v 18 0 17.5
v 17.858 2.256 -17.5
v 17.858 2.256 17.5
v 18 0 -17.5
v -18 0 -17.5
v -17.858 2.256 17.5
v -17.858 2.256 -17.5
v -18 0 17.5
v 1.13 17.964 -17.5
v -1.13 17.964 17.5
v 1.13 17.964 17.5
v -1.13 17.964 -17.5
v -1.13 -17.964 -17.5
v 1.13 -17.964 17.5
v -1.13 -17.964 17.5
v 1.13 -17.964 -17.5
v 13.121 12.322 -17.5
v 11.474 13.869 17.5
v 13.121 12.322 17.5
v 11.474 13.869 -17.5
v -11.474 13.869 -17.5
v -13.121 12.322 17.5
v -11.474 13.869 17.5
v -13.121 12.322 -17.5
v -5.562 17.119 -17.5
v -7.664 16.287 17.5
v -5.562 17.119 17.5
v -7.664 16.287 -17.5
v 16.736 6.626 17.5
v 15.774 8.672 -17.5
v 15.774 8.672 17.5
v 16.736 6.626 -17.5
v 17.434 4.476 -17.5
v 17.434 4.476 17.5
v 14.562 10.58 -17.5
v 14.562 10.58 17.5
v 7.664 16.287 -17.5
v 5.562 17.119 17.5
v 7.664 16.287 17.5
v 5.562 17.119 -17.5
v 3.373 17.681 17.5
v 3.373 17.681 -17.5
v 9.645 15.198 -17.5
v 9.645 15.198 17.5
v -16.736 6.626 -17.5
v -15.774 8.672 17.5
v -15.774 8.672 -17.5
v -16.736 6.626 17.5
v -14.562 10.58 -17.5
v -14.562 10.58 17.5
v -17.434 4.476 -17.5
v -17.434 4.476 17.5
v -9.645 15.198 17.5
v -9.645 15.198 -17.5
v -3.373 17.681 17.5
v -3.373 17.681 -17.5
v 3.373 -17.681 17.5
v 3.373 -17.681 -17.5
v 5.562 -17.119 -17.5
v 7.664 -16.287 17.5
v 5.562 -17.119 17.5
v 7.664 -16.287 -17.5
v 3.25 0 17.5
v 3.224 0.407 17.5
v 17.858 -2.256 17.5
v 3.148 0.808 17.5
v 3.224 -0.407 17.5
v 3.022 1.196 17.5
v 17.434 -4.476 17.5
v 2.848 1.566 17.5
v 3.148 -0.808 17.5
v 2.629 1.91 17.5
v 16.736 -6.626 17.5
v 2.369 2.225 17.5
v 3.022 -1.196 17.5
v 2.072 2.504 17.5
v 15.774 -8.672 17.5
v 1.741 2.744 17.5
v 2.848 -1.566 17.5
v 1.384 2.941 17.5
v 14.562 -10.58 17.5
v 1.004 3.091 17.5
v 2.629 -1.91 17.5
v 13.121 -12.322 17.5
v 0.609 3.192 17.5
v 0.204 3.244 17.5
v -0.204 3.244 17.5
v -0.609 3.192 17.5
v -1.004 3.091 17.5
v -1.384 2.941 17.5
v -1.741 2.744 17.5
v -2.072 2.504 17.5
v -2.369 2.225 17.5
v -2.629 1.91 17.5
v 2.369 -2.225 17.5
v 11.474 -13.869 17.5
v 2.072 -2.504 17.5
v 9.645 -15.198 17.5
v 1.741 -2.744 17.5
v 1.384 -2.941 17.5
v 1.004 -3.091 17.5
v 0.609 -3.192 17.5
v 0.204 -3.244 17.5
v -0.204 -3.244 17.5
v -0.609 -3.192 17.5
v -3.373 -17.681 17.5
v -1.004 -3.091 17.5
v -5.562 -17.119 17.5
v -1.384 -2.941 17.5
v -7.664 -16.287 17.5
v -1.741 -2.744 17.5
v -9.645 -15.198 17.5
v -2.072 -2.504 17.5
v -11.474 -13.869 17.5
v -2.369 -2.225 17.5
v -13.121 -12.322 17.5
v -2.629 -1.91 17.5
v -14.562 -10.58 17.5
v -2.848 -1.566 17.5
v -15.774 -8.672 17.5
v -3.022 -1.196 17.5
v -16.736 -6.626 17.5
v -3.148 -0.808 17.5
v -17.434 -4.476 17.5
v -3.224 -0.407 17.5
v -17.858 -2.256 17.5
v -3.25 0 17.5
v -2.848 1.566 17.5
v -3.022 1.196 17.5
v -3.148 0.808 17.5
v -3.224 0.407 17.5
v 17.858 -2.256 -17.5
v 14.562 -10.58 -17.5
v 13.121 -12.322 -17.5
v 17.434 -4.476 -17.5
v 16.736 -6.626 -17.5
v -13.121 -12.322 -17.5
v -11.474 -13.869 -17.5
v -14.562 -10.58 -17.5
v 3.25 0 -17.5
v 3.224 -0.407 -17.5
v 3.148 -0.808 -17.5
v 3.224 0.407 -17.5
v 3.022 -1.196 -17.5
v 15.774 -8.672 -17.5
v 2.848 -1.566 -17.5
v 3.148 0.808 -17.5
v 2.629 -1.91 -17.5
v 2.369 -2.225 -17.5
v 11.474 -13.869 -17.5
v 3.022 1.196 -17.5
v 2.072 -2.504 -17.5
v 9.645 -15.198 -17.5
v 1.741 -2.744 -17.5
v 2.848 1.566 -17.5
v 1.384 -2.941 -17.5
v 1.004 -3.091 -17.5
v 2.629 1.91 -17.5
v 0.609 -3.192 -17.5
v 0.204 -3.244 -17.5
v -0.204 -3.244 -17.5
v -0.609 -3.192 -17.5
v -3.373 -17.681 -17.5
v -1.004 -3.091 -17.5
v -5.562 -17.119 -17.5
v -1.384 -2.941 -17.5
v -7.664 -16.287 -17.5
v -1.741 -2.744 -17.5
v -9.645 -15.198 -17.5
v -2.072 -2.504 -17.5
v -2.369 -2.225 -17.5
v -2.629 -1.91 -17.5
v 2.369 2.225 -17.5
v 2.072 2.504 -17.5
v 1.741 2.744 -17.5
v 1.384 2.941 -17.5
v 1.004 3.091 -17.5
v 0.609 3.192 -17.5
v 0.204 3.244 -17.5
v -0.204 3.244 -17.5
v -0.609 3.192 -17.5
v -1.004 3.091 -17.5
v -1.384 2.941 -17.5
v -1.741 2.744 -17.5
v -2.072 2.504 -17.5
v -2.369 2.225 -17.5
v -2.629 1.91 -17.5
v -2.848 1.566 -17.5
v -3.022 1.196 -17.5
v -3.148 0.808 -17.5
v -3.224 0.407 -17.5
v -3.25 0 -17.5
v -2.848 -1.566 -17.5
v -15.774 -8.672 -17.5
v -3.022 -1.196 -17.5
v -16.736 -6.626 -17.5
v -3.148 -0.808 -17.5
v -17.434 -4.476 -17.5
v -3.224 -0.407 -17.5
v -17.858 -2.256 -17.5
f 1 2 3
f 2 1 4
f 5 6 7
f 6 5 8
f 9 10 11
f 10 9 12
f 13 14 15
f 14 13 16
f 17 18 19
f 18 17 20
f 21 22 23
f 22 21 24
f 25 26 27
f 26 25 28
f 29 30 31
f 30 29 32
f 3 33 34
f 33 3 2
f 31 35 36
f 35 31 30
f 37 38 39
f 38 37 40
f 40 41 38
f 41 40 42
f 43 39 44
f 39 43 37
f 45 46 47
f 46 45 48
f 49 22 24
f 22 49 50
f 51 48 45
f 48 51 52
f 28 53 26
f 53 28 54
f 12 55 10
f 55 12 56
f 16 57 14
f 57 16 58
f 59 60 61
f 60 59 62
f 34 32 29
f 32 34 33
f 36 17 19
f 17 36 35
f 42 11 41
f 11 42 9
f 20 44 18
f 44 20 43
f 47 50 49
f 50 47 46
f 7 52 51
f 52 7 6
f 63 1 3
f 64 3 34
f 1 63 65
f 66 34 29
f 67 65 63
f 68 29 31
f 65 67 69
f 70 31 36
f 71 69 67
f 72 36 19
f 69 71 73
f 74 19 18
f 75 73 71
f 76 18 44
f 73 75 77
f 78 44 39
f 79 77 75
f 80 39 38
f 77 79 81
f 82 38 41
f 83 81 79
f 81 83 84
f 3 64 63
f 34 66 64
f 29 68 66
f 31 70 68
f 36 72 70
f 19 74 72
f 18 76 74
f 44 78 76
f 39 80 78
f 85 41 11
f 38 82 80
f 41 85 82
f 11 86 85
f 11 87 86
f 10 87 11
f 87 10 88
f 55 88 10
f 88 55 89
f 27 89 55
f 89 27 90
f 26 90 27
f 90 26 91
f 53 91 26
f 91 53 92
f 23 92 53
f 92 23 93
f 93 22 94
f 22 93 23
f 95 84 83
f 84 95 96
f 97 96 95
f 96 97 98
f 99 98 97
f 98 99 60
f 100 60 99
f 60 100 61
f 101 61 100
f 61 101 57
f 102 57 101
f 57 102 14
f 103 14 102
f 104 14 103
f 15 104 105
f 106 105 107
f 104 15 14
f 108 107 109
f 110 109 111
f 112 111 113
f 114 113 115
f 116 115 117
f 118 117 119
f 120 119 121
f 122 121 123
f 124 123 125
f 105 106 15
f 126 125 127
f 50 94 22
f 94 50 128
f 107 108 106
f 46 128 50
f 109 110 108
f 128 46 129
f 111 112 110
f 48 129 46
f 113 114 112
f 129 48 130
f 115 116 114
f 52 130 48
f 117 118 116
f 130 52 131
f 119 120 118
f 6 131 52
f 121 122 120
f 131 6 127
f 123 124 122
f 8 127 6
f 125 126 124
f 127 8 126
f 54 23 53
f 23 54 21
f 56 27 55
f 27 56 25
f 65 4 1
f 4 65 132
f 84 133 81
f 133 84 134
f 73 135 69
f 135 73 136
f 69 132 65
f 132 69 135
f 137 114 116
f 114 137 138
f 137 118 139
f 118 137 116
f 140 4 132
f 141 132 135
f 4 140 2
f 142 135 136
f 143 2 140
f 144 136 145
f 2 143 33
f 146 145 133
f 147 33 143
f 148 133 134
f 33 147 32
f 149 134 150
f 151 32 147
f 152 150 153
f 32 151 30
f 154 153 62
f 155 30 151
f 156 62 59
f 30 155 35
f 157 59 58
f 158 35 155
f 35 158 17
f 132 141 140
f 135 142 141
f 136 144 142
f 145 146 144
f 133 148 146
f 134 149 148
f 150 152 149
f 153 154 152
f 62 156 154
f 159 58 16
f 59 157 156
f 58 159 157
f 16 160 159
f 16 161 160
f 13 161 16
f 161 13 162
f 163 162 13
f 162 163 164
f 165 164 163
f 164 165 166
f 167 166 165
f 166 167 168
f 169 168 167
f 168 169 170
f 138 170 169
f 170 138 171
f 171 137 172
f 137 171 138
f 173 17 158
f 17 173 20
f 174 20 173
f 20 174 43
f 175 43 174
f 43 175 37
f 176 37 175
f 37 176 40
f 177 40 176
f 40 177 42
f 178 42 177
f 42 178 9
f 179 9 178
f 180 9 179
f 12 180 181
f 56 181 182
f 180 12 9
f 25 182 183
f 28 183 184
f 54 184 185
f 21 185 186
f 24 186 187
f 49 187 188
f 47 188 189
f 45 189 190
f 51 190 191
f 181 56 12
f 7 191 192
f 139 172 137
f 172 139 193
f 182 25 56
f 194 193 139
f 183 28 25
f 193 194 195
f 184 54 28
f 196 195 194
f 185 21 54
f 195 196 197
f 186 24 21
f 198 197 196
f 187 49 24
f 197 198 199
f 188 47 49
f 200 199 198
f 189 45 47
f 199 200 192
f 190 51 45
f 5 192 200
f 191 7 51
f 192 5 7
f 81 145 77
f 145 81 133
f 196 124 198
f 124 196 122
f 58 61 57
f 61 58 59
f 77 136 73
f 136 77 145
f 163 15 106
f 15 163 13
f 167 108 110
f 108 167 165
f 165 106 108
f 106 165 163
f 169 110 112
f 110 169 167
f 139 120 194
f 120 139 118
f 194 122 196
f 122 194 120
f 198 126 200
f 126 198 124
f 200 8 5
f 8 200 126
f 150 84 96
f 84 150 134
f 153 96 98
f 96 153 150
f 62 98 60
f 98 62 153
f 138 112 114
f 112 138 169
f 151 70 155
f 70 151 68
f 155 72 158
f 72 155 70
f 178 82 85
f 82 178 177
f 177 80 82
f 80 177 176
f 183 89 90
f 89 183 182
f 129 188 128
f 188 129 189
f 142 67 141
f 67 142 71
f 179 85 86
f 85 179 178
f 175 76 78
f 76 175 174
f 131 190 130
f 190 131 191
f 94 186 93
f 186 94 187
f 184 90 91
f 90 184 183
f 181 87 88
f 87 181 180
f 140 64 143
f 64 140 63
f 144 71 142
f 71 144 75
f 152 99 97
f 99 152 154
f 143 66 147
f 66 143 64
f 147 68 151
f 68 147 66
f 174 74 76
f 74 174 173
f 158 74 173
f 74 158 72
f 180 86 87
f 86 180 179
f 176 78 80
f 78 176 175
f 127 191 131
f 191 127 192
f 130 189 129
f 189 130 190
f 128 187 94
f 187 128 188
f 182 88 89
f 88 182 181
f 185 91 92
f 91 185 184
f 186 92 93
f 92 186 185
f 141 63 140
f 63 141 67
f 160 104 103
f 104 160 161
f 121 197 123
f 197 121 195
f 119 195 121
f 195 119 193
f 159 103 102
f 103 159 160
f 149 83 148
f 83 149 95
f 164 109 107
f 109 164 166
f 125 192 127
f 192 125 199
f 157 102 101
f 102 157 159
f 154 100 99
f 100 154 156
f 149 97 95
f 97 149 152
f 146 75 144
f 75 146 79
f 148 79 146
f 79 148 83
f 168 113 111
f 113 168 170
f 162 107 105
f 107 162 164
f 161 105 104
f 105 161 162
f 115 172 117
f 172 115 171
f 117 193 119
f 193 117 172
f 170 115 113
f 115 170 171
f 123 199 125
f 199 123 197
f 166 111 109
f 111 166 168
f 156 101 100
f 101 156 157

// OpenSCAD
$fn = 50;


difference() {
	union() {
		translate(v = [0, 0, -17.5000000000]) {
			cylinder(h = 35, r = 18.0000000000);
		}
	}
	union() {
		translate(v = [0, 0, -100.0000000000]) {
			cylinder(h = 200, r = 3.2500000000);
		}
	}
}
